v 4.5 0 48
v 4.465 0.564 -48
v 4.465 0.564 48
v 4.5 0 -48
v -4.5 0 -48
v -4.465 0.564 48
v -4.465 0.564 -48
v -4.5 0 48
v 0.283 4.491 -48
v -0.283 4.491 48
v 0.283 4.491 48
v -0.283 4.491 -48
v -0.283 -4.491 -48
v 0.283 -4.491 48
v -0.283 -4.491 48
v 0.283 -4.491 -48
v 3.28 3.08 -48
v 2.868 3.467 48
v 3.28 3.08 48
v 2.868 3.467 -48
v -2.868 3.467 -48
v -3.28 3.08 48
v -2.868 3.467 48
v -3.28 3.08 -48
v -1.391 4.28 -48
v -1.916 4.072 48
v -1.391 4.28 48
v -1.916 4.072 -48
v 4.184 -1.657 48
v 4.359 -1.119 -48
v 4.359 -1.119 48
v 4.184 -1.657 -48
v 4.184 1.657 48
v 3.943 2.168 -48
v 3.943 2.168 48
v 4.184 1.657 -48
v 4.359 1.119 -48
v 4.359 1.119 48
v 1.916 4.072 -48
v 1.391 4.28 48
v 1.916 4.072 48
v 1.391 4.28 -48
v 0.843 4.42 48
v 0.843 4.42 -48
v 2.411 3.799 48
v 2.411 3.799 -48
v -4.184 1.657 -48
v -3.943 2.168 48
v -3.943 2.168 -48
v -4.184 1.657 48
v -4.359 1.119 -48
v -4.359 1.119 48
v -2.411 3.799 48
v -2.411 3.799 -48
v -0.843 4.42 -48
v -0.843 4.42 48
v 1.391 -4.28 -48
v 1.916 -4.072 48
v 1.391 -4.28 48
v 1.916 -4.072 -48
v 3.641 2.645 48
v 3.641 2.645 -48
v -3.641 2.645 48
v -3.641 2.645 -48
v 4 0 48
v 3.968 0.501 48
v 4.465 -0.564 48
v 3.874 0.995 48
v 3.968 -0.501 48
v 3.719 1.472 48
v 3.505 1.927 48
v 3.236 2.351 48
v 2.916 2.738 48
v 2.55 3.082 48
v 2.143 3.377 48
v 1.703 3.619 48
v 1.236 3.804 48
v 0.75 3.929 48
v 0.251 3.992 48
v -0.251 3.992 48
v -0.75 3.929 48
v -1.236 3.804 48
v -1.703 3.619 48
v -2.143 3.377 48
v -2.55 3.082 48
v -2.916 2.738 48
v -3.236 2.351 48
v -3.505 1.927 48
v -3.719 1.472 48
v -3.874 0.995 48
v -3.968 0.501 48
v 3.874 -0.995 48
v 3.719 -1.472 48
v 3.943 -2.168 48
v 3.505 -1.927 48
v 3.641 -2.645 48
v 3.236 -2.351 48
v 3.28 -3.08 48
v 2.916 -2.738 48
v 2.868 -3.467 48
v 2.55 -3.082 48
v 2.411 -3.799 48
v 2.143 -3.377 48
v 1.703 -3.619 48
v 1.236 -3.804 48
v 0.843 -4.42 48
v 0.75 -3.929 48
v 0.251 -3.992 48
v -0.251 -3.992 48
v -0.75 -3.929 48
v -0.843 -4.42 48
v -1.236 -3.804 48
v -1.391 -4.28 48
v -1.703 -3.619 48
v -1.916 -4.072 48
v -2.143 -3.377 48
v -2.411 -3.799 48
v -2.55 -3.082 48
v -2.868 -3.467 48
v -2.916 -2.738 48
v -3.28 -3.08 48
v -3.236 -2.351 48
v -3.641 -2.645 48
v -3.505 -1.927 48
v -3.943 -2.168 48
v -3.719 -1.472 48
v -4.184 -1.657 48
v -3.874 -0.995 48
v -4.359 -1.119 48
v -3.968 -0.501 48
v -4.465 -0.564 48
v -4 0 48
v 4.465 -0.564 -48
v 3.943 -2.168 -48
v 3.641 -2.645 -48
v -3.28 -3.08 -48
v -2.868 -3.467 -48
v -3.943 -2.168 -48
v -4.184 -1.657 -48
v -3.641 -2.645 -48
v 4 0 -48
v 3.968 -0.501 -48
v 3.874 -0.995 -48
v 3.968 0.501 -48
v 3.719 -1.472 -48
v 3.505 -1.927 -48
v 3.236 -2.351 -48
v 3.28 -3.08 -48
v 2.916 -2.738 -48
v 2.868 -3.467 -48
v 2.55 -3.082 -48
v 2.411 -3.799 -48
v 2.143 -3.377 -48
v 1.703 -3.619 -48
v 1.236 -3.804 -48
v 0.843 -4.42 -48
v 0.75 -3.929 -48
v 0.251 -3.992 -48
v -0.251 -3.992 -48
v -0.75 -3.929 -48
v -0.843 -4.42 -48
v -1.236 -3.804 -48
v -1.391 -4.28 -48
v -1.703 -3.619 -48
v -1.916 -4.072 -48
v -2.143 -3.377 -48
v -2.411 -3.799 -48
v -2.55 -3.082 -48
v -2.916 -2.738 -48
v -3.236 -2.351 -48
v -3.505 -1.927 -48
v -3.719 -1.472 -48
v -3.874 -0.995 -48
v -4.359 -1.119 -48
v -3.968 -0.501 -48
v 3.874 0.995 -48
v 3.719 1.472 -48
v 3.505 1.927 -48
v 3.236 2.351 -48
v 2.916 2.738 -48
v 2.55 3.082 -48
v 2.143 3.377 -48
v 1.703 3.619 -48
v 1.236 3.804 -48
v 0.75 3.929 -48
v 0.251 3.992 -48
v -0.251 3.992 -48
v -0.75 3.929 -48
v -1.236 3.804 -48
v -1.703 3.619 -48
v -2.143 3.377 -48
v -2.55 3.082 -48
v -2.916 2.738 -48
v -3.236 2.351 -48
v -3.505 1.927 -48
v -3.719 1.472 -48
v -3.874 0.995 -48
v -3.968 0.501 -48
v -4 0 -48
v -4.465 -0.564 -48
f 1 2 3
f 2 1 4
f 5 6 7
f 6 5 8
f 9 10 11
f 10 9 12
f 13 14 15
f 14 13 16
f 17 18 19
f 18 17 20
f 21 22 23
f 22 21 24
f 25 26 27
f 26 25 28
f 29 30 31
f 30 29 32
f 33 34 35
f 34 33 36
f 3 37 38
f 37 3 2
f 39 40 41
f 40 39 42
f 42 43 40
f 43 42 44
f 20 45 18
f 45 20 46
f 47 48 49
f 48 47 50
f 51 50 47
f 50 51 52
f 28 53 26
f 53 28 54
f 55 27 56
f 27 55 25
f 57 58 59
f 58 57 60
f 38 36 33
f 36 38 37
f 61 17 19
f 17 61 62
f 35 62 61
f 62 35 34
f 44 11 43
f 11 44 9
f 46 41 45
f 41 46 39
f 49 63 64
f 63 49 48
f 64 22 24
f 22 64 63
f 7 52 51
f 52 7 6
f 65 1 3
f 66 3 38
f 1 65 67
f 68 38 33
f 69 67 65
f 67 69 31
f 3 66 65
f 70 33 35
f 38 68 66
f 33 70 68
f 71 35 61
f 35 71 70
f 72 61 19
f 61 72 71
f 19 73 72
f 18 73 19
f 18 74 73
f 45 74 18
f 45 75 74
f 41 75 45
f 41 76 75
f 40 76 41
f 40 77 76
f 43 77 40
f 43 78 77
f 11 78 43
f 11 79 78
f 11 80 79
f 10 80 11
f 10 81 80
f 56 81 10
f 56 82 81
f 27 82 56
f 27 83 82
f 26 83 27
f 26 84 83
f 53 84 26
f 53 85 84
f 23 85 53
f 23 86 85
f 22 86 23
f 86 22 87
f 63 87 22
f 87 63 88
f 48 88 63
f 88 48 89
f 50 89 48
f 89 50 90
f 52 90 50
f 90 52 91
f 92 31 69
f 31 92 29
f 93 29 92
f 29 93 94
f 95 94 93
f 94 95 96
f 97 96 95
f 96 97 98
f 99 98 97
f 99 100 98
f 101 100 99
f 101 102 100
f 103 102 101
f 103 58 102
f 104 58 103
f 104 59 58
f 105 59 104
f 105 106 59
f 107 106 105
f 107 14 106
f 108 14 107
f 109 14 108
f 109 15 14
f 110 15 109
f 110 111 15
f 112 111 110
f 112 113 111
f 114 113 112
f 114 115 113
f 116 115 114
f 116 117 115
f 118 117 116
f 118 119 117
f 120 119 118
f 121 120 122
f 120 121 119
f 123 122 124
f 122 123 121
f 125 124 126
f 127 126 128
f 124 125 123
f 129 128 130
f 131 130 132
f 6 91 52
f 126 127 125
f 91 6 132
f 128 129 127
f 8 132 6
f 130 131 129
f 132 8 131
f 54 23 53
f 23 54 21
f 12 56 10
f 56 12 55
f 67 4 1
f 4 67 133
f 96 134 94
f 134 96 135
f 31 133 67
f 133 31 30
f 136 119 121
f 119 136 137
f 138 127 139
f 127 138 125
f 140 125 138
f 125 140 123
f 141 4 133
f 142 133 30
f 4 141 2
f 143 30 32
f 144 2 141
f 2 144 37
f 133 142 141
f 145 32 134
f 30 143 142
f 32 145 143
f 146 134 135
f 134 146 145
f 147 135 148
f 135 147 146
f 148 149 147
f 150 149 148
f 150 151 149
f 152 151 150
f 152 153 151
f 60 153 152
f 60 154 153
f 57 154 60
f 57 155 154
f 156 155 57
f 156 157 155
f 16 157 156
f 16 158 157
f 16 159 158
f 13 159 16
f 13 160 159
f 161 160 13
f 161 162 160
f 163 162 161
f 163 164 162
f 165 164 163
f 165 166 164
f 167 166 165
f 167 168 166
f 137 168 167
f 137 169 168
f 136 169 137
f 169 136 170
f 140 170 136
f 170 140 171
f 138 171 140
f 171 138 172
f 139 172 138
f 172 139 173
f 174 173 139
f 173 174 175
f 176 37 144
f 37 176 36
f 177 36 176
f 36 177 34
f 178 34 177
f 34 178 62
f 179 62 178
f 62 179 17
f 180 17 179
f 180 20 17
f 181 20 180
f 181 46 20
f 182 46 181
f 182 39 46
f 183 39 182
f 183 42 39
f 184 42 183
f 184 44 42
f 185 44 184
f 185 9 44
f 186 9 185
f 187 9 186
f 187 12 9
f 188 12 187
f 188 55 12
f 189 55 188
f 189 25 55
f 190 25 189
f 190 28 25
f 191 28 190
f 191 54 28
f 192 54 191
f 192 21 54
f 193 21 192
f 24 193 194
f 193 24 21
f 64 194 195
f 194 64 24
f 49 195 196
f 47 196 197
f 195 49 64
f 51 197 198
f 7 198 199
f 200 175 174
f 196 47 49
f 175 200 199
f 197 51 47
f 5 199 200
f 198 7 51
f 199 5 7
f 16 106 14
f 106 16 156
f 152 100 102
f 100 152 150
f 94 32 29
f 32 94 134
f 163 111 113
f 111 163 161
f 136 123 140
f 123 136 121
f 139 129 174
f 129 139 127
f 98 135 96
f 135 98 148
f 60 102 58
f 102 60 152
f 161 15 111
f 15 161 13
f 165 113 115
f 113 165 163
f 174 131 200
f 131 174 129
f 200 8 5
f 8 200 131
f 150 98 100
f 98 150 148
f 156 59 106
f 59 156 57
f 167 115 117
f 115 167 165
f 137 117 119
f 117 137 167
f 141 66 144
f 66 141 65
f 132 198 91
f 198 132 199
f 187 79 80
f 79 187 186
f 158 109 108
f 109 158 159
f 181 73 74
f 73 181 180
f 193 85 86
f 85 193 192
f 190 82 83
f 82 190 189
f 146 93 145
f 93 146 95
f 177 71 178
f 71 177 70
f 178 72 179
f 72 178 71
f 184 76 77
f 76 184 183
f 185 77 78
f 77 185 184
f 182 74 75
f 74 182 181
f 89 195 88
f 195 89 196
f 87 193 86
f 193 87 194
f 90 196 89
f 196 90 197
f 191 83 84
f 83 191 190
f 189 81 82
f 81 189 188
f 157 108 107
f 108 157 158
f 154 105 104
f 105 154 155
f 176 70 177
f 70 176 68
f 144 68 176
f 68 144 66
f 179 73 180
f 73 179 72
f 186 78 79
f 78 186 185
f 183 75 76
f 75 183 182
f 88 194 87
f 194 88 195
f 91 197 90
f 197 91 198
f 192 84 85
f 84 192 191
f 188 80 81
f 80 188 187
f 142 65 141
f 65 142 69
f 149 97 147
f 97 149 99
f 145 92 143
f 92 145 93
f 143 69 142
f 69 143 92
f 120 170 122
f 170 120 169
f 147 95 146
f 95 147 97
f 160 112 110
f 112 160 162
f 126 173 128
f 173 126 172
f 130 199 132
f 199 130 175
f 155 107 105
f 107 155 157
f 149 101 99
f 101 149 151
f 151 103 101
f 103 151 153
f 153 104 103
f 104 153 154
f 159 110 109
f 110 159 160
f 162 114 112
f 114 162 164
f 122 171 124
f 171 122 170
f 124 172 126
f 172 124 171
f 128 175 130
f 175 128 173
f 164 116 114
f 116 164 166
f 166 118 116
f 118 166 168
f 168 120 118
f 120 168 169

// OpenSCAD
$fn = 50;


difference() {
	union() {
		translate(v = [0, 0, -48.0000000000]) {
			cylinder(h = 96, r = 4.5000000000);
		}
	}
	union() {
		translate(v = [0, 0, -100.0000000000]) {
			cylinder(h = 200, r = 4);
		}
	}
}
